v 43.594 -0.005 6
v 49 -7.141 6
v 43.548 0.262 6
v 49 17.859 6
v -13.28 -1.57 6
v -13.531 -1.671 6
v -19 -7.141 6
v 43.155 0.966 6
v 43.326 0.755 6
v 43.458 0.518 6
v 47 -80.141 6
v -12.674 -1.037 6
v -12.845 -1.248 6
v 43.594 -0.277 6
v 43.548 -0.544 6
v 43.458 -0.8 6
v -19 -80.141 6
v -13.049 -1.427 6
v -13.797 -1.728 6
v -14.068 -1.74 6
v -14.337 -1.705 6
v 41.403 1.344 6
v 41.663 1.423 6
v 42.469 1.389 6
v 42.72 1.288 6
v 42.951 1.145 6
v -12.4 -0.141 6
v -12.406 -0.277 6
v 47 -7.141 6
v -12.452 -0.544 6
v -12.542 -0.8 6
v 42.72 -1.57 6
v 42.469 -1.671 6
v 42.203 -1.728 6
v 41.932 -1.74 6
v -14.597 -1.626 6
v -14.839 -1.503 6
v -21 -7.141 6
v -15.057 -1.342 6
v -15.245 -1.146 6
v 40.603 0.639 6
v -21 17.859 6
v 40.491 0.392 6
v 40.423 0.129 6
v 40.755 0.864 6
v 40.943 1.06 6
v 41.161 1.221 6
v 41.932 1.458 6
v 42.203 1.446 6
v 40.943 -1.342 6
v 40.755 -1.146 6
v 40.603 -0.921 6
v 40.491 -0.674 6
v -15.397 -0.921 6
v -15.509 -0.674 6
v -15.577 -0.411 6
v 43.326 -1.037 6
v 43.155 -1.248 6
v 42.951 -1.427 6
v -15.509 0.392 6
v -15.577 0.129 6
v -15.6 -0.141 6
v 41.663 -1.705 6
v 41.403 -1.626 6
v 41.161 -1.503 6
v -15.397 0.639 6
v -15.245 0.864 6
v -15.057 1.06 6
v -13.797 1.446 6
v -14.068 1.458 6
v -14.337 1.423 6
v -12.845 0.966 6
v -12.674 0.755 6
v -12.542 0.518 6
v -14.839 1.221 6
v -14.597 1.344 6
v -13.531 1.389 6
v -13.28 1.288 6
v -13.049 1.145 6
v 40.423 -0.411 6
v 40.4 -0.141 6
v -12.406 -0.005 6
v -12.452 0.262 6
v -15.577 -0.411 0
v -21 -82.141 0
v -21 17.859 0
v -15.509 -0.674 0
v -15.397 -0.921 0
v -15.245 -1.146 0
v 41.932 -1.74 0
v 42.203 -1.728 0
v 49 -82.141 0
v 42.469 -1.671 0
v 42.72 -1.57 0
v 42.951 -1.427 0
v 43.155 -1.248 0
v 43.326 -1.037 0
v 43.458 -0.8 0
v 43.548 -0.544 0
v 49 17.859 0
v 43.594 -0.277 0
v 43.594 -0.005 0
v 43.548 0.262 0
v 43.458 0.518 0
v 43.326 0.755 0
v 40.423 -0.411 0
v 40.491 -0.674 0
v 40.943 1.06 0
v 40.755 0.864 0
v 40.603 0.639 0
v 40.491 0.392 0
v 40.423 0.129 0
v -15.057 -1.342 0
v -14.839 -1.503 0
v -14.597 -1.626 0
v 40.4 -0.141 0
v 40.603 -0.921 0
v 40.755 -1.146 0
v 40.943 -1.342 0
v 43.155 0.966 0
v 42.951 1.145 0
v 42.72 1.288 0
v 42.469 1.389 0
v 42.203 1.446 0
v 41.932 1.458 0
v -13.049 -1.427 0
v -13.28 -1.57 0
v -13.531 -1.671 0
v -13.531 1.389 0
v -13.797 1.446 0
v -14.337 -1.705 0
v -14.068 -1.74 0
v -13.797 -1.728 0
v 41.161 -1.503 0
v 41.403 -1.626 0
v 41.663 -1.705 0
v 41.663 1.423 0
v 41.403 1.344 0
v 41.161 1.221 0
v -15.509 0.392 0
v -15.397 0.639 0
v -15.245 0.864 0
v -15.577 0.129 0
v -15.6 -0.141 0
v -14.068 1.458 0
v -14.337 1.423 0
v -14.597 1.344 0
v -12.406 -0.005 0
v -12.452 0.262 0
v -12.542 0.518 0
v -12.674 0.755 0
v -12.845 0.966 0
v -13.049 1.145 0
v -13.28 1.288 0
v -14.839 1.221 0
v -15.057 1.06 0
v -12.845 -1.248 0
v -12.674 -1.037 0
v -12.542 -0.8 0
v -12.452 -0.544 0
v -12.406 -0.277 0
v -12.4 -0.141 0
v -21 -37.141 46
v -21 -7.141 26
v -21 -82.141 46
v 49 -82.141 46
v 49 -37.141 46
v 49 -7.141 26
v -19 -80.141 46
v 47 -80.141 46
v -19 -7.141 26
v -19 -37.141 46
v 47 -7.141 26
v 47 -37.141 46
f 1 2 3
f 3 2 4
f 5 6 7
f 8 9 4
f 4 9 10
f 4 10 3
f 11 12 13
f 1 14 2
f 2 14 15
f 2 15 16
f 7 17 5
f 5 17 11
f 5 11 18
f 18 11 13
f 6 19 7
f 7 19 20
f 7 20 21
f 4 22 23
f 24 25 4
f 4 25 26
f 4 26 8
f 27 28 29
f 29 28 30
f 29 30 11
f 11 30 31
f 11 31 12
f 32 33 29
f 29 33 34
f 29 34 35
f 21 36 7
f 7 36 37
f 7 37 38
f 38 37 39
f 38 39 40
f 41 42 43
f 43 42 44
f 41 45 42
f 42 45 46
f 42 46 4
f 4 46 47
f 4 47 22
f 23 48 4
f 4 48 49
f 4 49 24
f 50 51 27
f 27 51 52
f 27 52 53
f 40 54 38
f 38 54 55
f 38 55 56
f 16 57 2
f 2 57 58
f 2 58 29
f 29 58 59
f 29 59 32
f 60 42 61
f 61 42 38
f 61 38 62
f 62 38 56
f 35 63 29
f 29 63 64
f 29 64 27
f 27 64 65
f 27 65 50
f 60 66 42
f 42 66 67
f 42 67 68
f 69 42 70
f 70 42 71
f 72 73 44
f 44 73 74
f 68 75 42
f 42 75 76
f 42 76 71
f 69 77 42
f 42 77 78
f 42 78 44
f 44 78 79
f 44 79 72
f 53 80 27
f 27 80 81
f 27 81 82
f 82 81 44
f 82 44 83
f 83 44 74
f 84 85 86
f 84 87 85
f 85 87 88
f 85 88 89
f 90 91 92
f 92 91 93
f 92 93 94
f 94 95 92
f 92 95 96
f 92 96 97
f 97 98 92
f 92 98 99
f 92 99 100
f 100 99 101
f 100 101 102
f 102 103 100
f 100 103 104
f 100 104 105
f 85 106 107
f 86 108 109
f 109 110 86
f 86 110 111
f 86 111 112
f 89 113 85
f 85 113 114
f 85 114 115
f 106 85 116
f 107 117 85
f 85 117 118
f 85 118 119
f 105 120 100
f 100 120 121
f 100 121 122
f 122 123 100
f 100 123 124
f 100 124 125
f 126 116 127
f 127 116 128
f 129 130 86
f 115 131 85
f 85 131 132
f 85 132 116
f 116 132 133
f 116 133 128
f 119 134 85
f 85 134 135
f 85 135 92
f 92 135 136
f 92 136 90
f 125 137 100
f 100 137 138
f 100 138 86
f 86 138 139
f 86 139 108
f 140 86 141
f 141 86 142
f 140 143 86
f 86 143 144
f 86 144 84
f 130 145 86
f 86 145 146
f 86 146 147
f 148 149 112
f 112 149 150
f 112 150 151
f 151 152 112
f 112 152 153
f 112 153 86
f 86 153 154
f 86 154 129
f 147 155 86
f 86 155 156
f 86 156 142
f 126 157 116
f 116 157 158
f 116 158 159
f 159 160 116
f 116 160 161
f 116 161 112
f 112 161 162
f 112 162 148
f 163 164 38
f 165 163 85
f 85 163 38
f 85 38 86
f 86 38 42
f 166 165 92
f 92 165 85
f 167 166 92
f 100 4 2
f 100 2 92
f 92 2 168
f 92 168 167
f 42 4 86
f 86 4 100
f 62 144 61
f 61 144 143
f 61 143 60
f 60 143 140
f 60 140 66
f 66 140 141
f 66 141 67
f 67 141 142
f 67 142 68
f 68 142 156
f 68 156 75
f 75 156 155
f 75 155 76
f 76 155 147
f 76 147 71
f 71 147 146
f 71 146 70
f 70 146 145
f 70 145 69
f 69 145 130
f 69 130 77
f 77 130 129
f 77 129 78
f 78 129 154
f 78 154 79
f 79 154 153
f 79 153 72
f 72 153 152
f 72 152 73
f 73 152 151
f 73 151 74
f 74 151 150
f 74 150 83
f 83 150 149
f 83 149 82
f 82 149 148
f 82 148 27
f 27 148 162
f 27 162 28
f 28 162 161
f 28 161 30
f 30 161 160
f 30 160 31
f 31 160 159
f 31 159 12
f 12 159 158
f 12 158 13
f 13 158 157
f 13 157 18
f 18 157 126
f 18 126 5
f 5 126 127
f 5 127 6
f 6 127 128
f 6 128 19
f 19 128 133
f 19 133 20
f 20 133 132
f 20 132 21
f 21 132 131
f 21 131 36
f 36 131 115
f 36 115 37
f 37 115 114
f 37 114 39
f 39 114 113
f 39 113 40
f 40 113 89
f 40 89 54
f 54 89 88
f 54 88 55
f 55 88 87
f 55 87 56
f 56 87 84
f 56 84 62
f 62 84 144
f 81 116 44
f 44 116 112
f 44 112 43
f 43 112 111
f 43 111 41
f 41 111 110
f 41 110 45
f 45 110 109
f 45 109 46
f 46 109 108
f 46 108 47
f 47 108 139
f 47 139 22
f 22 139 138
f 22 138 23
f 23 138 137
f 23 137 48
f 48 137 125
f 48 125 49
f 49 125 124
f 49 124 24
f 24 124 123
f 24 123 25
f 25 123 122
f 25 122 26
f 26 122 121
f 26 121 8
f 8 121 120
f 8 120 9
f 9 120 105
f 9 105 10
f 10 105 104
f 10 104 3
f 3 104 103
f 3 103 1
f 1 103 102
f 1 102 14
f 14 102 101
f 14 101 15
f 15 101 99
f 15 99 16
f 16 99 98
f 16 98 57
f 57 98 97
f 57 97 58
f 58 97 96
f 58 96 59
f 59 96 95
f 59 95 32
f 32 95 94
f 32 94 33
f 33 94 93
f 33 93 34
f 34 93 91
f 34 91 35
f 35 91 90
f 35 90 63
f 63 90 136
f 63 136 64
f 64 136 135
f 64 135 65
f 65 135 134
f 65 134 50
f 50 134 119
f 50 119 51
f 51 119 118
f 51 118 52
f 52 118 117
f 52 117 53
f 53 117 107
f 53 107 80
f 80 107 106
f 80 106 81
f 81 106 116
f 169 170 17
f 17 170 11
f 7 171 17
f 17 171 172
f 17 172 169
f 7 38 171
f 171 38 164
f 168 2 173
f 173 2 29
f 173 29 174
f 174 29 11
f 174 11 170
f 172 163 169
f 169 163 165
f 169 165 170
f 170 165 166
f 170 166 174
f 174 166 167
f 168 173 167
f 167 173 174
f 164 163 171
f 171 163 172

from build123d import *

# Parameters (mm, degrees)
SKETCH_1_W          = 70
SKETCH_1_H          = 100
SKETCH_1_R          = 1.6
EXTRUDE_1_DEPTH     = 6
EXTRUDE_2_DEPTH     = 40
CUT_EXTRUDE_1_DEPTH = 71


with BuildPart() as part:
    # 草图1 → 凸台-拉伸1 (new body)
    with BuildSketch(Plane.XY):
        with Locations((14, -32.141025641)):
            Rectangle(SKETCH_1_W, SKETCH_1_H)
        with Locations((-14, -0.141025641)):
            Circle(SKETCH_1_R, mode=Mode.SUBTRACT)
        with Locations((42, -0.141025641)):
            Circle(SKETCH_1_R, mode=Mode.SUBTRACT)
    extrude(amount=EXTRUDE_1_DEPTH)

    # 草图2 → 凸台-拉伸2 (add)
    with BuildSketch(Plane.XY.offset(6)):
        Polygon((-19, -7.141025641), (-21, -7.141025641), (-21, -80.141025641), (-21, -82.141025641), (-18.055692248, -82.141025641), (46.014859647, -82.141025641), (49, -82.141025641), (49, -79.477981724), (49, -7.141025641), (47, -7.141025641), (47, -80.141025641), (-19, -80.141025641), align=None)
    extrude(amount=EXTRUDE_2_DEPTH)

    # 草图3 → 切除-拉伸1 (cut, through all)
    with BuildSketch(Plane.ZY.offset(21)):
        Polygon((26, -7.141025641), (46, -37.141025641), (46, -7.141025641), align=None)
    extrude(amount=-CUT_EXTRUDE_1_DEPTH, mode=Mode.SUBTRACT)


solid = part.part
